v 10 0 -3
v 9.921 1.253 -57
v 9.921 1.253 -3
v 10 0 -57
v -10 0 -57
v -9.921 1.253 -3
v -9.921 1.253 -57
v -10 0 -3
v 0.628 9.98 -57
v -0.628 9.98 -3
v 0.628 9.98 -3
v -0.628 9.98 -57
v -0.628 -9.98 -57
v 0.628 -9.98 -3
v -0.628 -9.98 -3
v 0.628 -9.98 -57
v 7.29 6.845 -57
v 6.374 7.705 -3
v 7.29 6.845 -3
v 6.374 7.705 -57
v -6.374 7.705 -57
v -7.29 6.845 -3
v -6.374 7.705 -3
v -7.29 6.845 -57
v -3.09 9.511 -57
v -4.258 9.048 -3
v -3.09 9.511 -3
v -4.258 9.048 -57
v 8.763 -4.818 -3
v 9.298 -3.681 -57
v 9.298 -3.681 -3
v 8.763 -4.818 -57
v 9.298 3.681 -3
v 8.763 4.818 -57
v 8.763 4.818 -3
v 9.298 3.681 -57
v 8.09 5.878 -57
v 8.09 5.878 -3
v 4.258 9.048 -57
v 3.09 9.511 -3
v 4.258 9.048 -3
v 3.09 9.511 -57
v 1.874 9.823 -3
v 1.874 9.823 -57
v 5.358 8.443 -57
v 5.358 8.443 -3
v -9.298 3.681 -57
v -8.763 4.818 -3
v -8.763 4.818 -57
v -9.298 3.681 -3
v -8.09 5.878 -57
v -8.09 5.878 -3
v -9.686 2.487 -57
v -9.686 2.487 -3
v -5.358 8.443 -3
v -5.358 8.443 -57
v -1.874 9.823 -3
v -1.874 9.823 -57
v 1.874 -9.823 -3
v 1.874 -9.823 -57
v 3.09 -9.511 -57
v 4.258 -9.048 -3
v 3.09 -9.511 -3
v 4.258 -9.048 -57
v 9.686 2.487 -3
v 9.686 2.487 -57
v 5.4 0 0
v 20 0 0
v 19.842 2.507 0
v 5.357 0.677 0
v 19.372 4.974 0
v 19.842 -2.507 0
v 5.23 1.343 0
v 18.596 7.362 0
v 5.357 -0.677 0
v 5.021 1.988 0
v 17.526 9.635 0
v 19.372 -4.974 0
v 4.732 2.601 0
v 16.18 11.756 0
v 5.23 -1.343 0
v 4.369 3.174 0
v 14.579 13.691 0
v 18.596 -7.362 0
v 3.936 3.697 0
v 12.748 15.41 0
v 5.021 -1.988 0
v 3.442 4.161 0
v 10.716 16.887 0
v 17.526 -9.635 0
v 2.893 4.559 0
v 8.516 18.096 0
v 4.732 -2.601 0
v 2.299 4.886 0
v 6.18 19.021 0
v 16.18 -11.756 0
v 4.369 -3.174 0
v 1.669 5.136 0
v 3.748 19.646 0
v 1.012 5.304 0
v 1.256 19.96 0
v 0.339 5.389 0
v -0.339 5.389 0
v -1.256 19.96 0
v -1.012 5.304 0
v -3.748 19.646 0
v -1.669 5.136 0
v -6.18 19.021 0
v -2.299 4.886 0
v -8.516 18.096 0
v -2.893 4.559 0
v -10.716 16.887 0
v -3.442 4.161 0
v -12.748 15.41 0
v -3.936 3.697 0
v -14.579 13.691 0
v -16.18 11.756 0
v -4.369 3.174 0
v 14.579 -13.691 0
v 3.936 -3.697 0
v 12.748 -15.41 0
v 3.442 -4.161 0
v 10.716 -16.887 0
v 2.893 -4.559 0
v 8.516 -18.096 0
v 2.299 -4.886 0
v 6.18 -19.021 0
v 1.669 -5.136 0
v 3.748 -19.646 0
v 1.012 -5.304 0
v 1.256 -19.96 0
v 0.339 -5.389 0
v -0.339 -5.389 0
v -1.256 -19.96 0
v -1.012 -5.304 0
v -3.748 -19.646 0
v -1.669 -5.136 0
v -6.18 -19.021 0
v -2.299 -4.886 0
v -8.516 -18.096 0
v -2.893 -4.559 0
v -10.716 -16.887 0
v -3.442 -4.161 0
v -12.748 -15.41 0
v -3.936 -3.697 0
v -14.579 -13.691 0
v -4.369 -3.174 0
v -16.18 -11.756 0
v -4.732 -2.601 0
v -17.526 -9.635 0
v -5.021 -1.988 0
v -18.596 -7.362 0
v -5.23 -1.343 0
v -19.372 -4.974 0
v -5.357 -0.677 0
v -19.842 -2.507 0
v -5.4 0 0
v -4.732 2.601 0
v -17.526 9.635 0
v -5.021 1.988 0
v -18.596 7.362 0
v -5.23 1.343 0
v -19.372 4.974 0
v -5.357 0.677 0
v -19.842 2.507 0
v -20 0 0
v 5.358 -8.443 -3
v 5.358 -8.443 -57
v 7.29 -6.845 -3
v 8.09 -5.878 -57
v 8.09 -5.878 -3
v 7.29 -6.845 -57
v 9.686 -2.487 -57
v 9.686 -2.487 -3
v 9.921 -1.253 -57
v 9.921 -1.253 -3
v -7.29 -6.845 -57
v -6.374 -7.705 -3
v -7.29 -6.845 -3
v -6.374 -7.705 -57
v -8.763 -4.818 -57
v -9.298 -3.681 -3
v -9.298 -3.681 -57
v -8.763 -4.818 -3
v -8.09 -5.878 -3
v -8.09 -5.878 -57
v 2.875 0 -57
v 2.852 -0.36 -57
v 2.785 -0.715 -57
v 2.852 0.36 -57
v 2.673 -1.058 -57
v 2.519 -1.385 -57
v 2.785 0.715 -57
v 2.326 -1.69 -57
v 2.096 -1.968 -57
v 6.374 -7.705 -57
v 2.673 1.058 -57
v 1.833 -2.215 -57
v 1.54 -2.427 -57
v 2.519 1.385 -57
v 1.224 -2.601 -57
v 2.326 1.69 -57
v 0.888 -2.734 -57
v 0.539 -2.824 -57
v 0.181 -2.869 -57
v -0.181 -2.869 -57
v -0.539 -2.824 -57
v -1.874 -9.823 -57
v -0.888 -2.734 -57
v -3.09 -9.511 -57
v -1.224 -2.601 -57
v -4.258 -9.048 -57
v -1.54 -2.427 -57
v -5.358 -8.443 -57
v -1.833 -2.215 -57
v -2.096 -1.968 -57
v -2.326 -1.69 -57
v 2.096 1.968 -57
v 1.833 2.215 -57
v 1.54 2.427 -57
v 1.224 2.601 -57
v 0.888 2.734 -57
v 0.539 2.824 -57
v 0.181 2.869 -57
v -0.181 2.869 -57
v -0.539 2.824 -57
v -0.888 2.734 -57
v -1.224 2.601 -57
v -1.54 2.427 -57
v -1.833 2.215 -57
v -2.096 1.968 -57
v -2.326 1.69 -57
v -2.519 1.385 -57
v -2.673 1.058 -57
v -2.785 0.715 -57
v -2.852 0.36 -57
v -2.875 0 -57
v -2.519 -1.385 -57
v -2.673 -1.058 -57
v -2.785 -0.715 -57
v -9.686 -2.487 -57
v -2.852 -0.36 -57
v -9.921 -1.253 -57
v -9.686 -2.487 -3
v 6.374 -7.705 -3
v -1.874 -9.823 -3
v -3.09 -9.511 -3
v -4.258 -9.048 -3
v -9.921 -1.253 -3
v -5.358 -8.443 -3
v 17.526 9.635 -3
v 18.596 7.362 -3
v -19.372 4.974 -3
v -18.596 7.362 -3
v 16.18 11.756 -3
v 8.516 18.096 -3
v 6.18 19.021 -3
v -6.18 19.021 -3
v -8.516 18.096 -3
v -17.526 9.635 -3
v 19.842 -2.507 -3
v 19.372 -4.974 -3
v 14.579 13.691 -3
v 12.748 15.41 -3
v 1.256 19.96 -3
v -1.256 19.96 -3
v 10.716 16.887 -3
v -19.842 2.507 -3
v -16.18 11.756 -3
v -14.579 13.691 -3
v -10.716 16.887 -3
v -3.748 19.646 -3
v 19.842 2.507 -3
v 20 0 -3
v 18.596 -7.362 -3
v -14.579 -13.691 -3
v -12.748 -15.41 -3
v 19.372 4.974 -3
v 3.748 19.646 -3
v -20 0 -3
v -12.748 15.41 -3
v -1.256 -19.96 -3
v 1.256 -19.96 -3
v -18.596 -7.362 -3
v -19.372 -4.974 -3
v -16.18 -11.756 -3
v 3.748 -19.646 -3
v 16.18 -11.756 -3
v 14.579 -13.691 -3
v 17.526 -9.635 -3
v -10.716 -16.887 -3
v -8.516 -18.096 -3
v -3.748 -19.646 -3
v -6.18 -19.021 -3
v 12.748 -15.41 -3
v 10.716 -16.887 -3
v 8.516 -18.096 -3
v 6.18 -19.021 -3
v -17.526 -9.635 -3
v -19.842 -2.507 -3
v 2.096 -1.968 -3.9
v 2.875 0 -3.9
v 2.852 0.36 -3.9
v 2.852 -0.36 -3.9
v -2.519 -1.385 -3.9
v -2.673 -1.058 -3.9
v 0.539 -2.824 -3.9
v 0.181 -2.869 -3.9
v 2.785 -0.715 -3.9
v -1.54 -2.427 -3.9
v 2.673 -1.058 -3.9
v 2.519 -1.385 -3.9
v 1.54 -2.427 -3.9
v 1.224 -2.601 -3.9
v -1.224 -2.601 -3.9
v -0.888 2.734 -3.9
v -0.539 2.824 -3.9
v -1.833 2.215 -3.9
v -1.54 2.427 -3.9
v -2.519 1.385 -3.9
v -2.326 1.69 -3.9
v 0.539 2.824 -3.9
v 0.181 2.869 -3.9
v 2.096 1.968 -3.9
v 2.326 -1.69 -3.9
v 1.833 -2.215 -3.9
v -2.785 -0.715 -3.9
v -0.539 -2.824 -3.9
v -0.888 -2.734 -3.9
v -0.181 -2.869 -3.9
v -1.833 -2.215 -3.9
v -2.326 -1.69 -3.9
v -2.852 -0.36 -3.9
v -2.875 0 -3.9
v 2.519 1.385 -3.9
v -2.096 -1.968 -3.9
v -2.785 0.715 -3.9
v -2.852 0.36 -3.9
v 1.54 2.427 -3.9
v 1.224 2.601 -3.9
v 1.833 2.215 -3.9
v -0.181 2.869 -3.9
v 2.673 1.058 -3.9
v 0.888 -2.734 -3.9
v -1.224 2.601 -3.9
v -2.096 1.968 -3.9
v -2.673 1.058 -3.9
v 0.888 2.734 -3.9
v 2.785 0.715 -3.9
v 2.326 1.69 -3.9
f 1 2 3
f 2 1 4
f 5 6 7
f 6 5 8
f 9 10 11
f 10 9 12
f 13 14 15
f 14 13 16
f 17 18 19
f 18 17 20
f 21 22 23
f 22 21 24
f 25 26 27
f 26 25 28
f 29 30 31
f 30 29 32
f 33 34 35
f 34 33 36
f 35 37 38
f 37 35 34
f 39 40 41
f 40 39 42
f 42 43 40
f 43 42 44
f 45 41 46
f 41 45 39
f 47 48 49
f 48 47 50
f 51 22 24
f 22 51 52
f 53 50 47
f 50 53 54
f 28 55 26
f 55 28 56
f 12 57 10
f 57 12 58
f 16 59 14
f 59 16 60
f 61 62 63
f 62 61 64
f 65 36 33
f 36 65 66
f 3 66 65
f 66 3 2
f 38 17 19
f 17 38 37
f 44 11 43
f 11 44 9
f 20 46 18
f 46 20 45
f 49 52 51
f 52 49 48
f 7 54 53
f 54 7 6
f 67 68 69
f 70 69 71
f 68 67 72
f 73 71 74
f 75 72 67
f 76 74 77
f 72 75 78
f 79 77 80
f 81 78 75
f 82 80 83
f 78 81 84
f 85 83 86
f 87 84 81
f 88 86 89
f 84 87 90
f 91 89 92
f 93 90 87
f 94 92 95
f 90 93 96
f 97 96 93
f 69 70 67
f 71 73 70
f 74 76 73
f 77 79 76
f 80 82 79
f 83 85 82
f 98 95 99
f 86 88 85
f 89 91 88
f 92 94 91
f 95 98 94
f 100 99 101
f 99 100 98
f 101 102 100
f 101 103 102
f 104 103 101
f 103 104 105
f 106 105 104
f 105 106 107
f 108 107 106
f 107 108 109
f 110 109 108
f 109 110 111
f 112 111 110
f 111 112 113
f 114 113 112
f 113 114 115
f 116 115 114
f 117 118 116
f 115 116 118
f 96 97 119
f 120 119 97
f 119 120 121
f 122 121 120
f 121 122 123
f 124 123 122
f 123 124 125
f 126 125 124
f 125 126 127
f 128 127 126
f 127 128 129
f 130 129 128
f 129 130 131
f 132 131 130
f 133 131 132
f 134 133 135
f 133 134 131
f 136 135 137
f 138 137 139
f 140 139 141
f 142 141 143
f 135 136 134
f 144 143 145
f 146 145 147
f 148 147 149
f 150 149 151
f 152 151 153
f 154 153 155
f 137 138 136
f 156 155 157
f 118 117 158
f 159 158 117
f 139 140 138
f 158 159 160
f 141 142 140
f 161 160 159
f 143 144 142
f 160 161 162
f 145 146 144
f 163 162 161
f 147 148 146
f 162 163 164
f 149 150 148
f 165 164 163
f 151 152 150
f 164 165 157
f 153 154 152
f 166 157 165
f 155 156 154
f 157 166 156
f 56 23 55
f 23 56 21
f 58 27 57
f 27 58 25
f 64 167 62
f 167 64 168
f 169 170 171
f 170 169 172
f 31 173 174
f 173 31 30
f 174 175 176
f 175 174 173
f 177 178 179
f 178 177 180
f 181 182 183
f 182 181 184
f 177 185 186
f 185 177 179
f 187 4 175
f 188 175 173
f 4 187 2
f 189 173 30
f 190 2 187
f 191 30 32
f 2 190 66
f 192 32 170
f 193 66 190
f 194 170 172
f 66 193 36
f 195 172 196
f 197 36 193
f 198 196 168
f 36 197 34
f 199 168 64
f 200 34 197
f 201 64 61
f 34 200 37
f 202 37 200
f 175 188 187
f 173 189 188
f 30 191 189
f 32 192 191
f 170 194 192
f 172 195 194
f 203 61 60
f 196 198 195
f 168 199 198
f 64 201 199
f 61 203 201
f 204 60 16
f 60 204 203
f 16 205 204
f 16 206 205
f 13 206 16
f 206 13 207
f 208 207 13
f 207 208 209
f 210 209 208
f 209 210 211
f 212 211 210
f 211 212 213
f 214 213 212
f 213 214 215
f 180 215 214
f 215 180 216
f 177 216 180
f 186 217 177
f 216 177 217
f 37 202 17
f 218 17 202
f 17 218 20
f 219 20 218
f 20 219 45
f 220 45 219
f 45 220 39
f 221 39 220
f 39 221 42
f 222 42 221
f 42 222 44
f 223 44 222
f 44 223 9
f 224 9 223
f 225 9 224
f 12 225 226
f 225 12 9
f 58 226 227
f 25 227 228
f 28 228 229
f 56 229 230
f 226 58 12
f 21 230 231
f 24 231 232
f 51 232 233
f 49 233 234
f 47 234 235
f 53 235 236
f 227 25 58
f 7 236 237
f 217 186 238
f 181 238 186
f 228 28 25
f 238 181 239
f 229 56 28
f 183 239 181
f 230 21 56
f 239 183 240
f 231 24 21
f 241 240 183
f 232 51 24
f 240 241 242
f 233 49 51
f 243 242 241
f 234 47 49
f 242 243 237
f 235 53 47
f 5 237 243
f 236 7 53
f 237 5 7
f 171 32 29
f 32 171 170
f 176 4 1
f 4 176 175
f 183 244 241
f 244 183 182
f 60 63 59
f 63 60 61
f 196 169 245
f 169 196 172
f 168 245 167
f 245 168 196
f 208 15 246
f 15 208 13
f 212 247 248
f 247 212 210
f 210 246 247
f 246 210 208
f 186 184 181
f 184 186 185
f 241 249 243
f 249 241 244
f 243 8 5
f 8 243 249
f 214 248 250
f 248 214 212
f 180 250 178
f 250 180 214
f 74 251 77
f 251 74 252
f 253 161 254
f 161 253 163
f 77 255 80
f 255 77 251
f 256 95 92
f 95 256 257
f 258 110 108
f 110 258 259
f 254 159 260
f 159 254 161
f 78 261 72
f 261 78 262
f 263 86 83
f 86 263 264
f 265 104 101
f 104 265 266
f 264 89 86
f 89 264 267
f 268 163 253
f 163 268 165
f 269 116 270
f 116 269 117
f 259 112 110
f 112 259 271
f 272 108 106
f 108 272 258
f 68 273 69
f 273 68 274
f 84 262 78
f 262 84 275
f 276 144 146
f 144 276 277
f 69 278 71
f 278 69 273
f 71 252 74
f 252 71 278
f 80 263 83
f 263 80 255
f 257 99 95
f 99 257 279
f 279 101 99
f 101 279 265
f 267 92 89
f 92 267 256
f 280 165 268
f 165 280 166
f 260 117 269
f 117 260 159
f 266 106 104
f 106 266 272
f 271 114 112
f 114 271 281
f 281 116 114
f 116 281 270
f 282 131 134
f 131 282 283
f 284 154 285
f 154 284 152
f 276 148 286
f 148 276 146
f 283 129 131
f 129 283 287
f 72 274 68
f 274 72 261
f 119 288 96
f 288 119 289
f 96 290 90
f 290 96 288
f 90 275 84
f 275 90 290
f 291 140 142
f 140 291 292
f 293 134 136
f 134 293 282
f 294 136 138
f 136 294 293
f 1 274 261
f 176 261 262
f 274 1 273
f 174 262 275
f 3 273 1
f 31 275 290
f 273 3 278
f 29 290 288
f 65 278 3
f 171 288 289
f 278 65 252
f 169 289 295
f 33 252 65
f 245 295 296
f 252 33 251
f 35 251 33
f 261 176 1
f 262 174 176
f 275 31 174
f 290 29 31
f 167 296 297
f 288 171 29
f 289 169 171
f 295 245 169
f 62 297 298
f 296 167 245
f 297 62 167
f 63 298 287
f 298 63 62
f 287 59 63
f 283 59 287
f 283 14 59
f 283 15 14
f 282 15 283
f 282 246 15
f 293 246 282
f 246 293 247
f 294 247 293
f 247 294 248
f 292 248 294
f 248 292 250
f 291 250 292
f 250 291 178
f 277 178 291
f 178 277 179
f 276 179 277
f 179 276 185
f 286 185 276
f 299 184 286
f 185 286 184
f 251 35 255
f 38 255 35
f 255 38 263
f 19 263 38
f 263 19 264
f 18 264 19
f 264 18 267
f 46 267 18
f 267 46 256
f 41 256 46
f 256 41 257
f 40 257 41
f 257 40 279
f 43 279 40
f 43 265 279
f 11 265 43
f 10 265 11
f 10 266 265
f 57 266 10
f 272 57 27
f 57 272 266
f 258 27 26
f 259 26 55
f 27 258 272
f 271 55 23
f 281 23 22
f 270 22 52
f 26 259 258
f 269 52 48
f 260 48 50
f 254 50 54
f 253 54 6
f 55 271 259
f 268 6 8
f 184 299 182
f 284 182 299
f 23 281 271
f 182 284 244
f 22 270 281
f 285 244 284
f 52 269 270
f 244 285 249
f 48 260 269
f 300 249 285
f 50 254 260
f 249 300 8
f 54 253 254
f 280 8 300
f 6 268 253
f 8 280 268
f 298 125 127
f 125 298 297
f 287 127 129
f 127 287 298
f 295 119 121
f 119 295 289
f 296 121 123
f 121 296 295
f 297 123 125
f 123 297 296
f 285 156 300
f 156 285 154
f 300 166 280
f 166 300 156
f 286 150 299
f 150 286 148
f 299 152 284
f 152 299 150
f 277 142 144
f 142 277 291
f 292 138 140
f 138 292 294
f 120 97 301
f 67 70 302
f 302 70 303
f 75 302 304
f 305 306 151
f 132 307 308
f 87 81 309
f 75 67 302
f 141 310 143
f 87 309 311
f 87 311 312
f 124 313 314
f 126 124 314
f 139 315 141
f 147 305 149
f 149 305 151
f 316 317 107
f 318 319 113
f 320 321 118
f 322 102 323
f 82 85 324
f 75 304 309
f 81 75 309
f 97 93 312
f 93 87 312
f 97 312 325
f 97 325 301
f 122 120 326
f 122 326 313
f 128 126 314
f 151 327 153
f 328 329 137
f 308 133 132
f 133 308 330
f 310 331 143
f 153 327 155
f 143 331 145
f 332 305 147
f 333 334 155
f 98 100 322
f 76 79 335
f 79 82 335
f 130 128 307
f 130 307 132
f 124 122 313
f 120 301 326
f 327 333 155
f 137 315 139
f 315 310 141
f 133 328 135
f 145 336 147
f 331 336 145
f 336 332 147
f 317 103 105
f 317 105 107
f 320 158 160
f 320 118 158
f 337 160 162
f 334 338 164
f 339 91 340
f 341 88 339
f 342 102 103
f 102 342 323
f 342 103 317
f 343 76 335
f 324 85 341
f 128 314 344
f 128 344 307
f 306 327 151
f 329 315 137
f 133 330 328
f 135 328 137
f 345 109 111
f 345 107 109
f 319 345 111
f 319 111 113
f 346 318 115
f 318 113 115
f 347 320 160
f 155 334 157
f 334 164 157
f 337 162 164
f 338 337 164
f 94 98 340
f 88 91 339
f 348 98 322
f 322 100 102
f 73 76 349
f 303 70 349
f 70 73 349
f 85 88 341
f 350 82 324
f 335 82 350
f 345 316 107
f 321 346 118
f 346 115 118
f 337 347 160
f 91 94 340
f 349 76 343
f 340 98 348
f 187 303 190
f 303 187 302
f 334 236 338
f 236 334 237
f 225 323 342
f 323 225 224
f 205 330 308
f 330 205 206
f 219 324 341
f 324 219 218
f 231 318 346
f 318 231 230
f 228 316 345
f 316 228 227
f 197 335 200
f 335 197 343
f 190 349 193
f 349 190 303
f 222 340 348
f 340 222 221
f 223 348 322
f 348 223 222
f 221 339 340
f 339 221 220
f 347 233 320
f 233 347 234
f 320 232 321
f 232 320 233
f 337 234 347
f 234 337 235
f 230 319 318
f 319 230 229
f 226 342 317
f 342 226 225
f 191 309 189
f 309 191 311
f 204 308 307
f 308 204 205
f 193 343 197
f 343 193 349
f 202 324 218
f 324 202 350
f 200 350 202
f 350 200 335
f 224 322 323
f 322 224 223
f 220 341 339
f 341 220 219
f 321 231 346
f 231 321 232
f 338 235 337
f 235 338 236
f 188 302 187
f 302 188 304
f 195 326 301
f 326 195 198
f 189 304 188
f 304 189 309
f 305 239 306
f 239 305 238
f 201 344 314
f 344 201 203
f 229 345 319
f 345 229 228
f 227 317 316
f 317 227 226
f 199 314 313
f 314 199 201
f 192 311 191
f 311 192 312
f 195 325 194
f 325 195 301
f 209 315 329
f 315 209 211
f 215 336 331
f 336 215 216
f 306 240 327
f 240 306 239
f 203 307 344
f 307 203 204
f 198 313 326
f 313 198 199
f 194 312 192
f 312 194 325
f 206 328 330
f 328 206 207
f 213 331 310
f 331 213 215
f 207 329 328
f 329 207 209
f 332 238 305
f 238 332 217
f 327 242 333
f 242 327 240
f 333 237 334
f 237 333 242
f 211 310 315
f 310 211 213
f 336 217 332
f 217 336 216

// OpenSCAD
$fn = 50;


difference() {
	union() {
		translate(v = [0, 0, -57.0000000000]) {
			cylinder(h = 57, r = 10.0000000000);
		}
		translate(v = [0, 0, -3.0000000000]) {
			cylinder(h = 3, r = 20.0000000000);
		}
	}
	union() {
		translate(v = [0, 0, 0]) {
			rotate(a = [0, 0, 0]) {
				difference() {
					union() {
						#translate(v = [0, 0, -57.0000000000]) {
							cylinder(h = 57, r = 2.6000000000);
						}
						#translate(v = [0, 0, -3.9000000000]) {
							cylinder(h = 3.9000000000, r = 10.0000000000, r1 = 2.8750000000, r2 = 5.4000000000);
						}
						#translate(v = [0, 0, -57.0000000000]) {
							cylinder(h = 57, r = 2.8750000000);
						}
						#translate(v = [0, 0, -57.0000000000]) {
							cylinder(h = 57, r = 2.6000000000);
						}
					}
					union();
				}
			}
		}
	}
}
